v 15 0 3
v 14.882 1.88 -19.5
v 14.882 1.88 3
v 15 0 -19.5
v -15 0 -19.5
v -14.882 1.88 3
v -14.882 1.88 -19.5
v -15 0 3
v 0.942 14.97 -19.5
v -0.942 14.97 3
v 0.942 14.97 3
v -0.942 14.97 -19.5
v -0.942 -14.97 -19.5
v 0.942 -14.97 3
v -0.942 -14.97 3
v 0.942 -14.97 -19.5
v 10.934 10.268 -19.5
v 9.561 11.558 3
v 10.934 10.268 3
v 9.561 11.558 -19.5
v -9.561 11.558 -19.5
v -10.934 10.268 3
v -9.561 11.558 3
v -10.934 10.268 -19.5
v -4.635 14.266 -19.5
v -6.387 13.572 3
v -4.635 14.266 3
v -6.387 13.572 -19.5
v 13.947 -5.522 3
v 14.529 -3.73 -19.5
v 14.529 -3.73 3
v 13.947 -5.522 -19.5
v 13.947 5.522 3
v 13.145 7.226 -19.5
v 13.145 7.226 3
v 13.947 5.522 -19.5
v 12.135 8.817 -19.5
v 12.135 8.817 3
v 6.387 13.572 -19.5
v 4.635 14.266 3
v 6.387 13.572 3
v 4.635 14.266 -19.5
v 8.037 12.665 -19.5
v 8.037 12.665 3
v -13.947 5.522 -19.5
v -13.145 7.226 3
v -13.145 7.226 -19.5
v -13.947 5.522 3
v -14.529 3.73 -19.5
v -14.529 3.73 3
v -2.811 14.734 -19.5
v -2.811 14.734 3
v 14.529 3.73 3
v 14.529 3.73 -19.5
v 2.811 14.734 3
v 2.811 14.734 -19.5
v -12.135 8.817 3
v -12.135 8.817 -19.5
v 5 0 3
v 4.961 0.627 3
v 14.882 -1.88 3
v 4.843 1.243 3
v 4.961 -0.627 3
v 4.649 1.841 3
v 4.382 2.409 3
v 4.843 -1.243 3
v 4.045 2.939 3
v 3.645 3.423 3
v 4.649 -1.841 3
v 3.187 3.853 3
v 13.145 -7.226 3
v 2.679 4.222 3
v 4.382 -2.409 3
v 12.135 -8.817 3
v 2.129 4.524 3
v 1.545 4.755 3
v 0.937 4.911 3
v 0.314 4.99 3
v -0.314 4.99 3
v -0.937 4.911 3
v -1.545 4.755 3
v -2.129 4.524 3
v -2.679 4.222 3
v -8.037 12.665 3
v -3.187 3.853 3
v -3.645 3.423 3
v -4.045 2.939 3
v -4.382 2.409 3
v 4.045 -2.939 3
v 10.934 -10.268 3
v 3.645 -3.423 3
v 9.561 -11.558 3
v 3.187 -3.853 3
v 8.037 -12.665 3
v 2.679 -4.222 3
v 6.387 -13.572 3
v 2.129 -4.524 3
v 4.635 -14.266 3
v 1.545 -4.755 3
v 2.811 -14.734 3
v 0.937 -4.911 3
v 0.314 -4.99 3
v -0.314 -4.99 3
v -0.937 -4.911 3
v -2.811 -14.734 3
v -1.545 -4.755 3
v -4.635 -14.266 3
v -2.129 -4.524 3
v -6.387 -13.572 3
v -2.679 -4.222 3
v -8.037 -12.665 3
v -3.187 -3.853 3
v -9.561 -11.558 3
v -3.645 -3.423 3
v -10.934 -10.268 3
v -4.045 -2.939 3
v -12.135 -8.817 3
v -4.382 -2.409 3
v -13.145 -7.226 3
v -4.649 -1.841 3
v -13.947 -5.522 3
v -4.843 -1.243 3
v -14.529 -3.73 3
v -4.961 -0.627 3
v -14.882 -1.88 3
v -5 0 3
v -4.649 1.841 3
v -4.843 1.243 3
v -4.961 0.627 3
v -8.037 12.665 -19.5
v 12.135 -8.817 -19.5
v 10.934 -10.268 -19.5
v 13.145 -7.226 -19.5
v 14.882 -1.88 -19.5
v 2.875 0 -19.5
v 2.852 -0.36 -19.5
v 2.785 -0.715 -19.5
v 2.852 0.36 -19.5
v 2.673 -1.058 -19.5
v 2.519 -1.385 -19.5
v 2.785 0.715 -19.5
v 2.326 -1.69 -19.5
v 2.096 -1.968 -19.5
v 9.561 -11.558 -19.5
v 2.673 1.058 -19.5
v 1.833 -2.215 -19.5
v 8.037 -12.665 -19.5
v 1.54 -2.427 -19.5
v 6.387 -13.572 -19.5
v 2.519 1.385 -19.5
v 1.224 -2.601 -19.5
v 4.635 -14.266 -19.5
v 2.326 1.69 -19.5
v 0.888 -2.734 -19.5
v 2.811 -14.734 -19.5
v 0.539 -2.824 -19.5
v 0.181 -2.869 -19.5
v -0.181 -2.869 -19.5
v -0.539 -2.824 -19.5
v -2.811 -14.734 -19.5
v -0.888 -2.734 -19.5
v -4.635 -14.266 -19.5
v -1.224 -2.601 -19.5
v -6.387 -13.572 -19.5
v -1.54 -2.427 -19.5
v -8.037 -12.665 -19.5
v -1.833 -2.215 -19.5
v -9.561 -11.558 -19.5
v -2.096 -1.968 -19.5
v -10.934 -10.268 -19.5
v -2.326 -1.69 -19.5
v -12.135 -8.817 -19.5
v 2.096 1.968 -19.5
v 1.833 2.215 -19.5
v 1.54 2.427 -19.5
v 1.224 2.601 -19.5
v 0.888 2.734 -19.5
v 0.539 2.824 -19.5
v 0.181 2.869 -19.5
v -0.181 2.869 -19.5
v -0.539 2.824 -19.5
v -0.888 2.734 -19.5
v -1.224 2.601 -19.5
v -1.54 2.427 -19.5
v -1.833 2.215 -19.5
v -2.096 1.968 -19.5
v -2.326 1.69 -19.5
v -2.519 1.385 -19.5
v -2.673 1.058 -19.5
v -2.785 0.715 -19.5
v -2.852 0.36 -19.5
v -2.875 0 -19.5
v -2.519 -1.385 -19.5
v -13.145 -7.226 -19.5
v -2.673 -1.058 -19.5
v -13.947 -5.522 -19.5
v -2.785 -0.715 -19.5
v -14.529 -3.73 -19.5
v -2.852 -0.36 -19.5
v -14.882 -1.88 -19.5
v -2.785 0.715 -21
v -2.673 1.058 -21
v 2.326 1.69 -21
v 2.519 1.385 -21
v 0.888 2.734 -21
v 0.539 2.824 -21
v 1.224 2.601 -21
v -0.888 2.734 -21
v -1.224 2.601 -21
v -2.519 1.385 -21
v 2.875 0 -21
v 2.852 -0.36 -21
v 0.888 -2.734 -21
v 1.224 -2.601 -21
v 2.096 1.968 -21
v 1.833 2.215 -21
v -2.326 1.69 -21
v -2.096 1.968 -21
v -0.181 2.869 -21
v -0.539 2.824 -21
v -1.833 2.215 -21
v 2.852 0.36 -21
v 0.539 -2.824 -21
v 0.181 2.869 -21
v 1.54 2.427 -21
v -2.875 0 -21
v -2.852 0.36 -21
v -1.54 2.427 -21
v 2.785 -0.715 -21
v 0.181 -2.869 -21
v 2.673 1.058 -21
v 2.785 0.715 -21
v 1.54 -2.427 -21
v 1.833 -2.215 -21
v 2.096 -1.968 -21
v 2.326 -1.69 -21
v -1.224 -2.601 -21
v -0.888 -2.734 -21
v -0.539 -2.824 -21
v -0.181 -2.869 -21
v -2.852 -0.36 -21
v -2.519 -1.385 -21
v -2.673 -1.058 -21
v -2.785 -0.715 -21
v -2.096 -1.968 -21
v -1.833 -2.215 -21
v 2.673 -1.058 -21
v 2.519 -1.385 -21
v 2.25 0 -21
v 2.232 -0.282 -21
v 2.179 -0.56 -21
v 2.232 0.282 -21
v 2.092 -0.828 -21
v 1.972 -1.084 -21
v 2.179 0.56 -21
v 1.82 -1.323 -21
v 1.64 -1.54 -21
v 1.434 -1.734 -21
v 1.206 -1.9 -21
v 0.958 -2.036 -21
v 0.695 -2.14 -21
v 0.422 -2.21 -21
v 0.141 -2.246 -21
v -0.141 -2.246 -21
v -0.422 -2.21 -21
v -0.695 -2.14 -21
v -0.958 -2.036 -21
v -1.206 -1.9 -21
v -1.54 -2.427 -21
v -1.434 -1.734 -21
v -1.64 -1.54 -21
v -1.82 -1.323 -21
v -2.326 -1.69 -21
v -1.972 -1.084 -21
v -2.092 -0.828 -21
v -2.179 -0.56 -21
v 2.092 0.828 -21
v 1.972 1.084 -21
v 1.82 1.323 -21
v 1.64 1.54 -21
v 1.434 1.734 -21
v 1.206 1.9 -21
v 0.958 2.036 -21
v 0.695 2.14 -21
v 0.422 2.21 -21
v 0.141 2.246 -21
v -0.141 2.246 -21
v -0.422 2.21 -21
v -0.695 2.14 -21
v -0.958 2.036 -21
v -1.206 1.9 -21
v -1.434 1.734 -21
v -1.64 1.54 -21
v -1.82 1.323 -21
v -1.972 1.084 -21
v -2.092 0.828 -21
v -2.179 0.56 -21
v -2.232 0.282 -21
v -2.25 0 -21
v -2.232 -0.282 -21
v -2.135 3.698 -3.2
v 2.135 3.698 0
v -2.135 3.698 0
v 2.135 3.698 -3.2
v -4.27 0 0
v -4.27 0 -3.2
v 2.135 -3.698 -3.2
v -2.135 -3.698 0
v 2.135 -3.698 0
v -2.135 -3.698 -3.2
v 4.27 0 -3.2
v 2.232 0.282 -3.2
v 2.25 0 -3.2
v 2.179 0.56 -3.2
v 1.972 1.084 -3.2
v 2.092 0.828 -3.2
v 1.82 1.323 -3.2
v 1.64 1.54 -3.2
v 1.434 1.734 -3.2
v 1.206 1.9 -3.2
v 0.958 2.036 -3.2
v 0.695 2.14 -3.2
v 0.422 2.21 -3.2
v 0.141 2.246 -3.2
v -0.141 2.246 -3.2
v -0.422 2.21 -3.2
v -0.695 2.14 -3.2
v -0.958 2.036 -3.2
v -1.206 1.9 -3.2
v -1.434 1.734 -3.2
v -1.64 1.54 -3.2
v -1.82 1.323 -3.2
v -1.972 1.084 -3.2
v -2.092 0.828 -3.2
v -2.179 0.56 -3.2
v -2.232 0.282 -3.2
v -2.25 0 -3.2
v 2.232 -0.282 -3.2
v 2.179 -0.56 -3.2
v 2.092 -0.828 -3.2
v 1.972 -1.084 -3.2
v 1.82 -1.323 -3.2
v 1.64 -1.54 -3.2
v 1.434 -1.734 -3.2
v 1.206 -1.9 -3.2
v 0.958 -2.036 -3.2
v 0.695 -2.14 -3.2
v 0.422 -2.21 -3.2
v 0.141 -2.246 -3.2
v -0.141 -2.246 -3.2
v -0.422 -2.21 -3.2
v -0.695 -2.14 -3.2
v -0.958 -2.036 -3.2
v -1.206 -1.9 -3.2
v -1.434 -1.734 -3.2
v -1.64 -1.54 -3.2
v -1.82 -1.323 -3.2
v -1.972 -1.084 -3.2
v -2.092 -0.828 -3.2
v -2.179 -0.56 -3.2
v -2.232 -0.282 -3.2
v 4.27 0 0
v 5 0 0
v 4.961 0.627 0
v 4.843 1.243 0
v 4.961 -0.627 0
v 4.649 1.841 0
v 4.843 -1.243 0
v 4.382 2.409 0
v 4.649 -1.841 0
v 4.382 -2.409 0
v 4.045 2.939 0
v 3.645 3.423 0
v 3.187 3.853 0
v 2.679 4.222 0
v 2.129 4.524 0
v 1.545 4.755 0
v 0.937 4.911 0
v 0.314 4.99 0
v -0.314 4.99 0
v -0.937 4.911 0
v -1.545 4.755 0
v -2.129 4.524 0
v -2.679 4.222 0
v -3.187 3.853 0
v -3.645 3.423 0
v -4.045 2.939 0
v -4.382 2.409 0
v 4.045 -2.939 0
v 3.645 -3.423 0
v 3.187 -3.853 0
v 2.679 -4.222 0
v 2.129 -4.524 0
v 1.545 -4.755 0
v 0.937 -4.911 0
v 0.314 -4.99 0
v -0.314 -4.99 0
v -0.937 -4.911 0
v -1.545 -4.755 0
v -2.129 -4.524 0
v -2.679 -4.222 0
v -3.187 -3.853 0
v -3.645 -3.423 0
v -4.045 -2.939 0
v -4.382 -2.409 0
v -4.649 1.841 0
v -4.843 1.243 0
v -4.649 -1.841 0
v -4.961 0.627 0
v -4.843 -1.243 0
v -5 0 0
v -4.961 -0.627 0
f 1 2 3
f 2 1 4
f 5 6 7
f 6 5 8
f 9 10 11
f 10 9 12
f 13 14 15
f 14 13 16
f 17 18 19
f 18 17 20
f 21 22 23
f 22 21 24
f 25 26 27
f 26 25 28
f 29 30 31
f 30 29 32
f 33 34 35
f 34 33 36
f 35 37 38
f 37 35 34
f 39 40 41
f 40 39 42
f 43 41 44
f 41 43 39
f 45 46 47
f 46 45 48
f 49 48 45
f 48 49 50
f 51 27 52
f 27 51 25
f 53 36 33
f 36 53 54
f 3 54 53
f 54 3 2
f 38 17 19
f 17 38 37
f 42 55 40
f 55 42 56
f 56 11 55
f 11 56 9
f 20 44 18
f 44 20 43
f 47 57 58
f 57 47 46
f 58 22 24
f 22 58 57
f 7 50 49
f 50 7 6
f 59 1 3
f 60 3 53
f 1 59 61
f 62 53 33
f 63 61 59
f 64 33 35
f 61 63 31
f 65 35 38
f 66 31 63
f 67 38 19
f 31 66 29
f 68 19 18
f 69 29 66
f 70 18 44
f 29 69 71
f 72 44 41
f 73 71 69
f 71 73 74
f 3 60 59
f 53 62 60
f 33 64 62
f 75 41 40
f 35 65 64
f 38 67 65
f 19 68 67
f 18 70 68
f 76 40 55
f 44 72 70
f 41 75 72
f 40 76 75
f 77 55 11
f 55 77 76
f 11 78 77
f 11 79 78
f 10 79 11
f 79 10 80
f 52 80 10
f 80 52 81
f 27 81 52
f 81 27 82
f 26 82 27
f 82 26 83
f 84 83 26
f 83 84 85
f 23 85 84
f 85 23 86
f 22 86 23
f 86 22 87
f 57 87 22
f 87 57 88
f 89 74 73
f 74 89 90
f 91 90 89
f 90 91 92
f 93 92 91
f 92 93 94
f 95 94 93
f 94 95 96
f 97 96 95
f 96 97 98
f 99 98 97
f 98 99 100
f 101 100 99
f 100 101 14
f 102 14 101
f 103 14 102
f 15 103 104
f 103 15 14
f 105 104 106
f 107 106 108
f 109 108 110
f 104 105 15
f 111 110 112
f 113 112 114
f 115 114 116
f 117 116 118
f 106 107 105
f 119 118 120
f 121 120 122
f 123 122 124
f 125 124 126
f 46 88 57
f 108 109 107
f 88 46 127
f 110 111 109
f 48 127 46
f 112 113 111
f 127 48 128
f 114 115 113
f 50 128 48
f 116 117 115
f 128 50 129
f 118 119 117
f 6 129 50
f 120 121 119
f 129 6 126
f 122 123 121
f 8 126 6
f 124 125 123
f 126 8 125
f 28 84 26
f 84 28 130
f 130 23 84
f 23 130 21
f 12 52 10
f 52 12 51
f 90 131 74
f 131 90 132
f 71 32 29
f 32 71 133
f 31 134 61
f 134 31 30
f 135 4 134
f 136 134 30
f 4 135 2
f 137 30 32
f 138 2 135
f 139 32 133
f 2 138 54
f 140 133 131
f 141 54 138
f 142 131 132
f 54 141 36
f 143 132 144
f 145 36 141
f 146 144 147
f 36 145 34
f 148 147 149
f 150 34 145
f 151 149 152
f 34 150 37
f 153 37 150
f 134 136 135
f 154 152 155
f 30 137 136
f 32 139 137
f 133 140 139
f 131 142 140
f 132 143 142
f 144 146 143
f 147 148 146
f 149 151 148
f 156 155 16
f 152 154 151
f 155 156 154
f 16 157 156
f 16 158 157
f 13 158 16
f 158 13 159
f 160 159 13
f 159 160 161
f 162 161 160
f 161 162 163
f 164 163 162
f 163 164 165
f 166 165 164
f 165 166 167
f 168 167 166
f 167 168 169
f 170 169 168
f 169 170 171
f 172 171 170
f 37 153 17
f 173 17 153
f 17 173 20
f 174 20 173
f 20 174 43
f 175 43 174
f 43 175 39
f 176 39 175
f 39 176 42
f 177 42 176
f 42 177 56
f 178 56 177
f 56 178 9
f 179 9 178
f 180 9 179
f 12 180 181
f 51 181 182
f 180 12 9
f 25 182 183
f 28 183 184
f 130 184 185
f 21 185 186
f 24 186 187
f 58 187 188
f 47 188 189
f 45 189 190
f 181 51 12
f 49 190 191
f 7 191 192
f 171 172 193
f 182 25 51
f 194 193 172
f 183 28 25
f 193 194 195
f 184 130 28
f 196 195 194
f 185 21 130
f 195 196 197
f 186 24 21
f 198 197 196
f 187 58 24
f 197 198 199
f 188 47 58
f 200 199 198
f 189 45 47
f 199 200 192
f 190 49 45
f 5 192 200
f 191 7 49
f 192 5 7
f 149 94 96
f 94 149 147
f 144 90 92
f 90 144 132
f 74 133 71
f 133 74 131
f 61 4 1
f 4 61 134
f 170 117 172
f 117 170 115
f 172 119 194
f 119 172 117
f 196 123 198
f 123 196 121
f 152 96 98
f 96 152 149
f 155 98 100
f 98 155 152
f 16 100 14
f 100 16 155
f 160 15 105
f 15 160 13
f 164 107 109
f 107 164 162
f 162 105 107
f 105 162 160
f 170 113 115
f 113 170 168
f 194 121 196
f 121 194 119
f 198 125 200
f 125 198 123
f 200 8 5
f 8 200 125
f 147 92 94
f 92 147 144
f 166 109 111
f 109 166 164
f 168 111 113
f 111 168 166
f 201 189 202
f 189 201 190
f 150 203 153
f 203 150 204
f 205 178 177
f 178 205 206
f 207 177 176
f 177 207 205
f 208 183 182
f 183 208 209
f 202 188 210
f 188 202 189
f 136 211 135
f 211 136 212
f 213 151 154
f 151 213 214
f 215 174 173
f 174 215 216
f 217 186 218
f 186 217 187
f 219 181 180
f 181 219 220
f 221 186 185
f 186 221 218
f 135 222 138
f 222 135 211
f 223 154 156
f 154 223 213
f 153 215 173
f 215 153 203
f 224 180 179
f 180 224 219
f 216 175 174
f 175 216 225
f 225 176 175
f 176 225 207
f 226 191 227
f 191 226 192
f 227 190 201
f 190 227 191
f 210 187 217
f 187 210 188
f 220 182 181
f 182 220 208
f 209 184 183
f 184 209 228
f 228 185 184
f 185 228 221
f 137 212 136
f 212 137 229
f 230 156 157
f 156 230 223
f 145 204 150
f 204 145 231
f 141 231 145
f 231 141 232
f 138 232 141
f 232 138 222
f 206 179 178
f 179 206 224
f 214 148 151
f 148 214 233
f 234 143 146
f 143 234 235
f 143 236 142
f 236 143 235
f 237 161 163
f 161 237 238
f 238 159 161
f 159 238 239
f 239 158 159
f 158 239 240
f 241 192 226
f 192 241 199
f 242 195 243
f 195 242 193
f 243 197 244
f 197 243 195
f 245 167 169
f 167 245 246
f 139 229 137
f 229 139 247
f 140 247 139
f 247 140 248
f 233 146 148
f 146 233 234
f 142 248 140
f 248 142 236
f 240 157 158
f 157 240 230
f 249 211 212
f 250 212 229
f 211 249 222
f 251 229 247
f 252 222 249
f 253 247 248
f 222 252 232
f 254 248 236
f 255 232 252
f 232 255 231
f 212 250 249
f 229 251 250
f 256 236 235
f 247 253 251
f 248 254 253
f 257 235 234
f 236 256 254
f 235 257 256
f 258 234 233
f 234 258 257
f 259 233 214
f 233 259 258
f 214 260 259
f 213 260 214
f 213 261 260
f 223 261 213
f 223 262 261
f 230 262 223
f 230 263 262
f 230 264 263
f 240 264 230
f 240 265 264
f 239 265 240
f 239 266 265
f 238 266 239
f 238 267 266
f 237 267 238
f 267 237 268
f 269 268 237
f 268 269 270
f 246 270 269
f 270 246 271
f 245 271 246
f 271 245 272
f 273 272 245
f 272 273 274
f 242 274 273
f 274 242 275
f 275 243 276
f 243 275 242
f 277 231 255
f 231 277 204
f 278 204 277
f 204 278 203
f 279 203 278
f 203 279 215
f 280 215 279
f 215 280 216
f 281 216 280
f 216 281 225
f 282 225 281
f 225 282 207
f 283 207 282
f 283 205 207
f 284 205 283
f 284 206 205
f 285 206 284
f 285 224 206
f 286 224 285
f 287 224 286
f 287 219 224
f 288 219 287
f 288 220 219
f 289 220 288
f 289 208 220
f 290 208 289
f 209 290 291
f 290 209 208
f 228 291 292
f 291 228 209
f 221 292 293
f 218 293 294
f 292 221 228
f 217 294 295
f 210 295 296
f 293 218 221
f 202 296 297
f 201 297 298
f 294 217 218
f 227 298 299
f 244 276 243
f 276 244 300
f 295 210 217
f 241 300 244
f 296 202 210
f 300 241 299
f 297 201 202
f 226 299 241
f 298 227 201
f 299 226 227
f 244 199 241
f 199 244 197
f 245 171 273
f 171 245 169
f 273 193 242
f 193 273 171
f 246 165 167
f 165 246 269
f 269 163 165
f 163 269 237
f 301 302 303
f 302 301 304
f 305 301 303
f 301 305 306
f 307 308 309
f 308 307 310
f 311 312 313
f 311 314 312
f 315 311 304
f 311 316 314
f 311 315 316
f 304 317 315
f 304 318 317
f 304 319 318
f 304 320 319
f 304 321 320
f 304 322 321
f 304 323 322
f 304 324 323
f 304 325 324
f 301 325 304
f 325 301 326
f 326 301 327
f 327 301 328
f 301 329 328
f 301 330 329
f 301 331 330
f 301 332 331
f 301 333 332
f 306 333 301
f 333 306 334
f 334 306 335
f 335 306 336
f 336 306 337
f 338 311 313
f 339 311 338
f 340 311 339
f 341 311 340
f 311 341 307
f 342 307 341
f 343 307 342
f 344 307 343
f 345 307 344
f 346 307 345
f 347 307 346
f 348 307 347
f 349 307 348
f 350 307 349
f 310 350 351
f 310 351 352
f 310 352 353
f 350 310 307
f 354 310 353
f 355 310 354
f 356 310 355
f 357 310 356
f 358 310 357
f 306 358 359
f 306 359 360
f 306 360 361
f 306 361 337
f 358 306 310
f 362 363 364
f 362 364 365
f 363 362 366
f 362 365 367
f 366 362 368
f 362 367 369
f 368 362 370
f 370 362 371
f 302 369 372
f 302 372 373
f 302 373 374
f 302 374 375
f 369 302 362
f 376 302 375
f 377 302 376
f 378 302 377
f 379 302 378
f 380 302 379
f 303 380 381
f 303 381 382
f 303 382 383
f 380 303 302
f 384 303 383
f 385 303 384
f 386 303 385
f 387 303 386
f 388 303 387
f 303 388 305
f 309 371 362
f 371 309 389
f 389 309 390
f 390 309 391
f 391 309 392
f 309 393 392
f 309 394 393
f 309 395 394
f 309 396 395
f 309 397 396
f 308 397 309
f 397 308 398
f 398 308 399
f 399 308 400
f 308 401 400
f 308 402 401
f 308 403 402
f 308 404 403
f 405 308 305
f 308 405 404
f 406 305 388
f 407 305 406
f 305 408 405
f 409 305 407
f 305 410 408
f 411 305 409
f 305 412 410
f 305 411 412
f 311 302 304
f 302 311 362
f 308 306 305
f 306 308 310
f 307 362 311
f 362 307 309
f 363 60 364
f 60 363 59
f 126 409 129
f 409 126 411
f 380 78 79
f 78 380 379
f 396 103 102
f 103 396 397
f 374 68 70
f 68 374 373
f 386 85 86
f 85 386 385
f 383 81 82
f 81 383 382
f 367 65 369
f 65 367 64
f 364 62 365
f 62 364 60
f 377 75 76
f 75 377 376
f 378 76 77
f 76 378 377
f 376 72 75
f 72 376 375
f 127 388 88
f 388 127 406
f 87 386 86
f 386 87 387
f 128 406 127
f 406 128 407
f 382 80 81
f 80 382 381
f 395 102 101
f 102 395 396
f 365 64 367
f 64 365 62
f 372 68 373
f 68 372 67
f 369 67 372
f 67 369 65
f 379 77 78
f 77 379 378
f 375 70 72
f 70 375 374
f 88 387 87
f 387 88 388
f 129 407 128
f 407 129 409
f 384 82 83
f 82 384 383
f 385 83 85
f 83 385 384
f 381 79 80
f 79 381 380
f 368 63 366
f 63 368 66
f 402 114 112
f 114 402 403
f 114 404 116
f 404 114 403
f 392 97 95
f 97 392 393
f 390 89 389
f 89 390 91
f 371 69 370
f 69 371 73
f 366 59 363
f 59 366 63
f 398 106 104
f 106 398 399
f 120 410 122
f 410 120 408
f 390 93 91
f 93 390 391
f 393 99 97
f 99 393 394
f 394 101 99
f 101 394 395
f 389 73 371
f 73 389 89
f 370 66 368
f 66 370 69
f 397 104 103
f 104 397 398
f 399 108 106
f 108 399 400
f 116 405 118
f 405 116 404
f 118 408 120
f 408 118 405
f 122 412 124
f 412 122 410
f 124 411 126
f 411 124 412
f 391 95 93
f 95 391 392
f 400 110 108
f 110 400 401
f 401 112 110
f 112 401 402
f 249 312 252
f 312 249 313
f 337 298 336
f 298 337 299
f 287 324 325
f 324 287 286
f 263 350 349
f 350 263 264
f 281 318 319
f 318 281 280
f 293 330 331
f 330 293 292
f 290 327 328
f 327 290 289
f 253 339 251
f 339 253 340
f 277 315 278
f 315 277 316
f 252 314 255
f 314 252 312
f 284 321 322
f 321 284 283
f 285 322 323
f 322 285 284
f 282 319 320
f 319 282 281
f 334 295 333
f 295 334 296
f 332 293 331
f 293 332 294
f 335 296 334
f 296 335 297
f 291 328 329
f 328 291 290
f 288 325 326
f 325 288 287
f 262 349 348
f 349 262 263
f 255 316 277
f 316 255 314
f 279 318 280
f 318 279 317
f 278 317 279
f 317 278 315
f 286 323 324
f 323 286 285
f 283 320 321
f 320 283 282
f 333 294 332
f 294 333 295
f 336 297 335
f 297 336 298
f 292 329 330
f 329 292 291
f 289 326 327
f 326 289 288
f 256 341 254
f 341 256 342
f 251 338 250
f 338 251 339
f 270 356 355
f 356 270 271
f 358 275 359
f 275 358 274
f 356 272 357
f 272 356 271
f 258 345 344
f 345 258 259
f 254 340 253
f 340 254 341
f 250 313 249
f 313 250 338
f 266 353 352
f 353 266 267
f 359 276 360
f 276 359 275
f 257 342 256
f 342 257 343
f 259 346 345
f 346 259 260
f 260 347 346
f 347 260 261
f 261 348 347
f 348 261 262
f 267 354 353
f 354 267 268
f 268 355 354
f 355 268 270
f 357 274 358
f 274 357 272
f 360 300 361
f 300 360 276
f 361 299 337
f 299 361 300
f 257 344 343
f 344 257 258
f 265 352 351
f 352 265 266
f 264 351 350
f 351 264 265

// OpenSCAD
$fn = 50;


difference() {
	union() {
		translate(v = [0, 0, -19.5000000000]) {
			cylinder(h = 22.5000000000, r = 15.0000000000);
		}
		#translate(v = [0, 0, -21.0000000000]) {
			cylinder(h = 21, r = 2.8750000000);
		}
	}
	union() {
		translate(v = [0, 0, 0]) {
			rotate(a = [0, 0, 0]) {
				difference() {
					union() {
						translate(v = [0, 0, -3.2000000000]) {
							linear_extrude(height = 3.2000000000) {
								polygon(points = [[4.2698000000, 0.0000000000], [2.1349000000, 3.6977552691], [-2.1349000000, 3.6977552691], [-4.2698000000, 0.0000000000], [-2.1349000000, -3.6977552691], [2.1349000000, -3.6977552691]]);
							}
						}
					}
					union();
				}
			}
		}
		#cylinder(h = 3, r = 5.0000000000);
		#translate(v = [0, 0, -100.0000000000]) {
			cylinder(h = 200, r = 2.2500000000);
		}
	}
}
